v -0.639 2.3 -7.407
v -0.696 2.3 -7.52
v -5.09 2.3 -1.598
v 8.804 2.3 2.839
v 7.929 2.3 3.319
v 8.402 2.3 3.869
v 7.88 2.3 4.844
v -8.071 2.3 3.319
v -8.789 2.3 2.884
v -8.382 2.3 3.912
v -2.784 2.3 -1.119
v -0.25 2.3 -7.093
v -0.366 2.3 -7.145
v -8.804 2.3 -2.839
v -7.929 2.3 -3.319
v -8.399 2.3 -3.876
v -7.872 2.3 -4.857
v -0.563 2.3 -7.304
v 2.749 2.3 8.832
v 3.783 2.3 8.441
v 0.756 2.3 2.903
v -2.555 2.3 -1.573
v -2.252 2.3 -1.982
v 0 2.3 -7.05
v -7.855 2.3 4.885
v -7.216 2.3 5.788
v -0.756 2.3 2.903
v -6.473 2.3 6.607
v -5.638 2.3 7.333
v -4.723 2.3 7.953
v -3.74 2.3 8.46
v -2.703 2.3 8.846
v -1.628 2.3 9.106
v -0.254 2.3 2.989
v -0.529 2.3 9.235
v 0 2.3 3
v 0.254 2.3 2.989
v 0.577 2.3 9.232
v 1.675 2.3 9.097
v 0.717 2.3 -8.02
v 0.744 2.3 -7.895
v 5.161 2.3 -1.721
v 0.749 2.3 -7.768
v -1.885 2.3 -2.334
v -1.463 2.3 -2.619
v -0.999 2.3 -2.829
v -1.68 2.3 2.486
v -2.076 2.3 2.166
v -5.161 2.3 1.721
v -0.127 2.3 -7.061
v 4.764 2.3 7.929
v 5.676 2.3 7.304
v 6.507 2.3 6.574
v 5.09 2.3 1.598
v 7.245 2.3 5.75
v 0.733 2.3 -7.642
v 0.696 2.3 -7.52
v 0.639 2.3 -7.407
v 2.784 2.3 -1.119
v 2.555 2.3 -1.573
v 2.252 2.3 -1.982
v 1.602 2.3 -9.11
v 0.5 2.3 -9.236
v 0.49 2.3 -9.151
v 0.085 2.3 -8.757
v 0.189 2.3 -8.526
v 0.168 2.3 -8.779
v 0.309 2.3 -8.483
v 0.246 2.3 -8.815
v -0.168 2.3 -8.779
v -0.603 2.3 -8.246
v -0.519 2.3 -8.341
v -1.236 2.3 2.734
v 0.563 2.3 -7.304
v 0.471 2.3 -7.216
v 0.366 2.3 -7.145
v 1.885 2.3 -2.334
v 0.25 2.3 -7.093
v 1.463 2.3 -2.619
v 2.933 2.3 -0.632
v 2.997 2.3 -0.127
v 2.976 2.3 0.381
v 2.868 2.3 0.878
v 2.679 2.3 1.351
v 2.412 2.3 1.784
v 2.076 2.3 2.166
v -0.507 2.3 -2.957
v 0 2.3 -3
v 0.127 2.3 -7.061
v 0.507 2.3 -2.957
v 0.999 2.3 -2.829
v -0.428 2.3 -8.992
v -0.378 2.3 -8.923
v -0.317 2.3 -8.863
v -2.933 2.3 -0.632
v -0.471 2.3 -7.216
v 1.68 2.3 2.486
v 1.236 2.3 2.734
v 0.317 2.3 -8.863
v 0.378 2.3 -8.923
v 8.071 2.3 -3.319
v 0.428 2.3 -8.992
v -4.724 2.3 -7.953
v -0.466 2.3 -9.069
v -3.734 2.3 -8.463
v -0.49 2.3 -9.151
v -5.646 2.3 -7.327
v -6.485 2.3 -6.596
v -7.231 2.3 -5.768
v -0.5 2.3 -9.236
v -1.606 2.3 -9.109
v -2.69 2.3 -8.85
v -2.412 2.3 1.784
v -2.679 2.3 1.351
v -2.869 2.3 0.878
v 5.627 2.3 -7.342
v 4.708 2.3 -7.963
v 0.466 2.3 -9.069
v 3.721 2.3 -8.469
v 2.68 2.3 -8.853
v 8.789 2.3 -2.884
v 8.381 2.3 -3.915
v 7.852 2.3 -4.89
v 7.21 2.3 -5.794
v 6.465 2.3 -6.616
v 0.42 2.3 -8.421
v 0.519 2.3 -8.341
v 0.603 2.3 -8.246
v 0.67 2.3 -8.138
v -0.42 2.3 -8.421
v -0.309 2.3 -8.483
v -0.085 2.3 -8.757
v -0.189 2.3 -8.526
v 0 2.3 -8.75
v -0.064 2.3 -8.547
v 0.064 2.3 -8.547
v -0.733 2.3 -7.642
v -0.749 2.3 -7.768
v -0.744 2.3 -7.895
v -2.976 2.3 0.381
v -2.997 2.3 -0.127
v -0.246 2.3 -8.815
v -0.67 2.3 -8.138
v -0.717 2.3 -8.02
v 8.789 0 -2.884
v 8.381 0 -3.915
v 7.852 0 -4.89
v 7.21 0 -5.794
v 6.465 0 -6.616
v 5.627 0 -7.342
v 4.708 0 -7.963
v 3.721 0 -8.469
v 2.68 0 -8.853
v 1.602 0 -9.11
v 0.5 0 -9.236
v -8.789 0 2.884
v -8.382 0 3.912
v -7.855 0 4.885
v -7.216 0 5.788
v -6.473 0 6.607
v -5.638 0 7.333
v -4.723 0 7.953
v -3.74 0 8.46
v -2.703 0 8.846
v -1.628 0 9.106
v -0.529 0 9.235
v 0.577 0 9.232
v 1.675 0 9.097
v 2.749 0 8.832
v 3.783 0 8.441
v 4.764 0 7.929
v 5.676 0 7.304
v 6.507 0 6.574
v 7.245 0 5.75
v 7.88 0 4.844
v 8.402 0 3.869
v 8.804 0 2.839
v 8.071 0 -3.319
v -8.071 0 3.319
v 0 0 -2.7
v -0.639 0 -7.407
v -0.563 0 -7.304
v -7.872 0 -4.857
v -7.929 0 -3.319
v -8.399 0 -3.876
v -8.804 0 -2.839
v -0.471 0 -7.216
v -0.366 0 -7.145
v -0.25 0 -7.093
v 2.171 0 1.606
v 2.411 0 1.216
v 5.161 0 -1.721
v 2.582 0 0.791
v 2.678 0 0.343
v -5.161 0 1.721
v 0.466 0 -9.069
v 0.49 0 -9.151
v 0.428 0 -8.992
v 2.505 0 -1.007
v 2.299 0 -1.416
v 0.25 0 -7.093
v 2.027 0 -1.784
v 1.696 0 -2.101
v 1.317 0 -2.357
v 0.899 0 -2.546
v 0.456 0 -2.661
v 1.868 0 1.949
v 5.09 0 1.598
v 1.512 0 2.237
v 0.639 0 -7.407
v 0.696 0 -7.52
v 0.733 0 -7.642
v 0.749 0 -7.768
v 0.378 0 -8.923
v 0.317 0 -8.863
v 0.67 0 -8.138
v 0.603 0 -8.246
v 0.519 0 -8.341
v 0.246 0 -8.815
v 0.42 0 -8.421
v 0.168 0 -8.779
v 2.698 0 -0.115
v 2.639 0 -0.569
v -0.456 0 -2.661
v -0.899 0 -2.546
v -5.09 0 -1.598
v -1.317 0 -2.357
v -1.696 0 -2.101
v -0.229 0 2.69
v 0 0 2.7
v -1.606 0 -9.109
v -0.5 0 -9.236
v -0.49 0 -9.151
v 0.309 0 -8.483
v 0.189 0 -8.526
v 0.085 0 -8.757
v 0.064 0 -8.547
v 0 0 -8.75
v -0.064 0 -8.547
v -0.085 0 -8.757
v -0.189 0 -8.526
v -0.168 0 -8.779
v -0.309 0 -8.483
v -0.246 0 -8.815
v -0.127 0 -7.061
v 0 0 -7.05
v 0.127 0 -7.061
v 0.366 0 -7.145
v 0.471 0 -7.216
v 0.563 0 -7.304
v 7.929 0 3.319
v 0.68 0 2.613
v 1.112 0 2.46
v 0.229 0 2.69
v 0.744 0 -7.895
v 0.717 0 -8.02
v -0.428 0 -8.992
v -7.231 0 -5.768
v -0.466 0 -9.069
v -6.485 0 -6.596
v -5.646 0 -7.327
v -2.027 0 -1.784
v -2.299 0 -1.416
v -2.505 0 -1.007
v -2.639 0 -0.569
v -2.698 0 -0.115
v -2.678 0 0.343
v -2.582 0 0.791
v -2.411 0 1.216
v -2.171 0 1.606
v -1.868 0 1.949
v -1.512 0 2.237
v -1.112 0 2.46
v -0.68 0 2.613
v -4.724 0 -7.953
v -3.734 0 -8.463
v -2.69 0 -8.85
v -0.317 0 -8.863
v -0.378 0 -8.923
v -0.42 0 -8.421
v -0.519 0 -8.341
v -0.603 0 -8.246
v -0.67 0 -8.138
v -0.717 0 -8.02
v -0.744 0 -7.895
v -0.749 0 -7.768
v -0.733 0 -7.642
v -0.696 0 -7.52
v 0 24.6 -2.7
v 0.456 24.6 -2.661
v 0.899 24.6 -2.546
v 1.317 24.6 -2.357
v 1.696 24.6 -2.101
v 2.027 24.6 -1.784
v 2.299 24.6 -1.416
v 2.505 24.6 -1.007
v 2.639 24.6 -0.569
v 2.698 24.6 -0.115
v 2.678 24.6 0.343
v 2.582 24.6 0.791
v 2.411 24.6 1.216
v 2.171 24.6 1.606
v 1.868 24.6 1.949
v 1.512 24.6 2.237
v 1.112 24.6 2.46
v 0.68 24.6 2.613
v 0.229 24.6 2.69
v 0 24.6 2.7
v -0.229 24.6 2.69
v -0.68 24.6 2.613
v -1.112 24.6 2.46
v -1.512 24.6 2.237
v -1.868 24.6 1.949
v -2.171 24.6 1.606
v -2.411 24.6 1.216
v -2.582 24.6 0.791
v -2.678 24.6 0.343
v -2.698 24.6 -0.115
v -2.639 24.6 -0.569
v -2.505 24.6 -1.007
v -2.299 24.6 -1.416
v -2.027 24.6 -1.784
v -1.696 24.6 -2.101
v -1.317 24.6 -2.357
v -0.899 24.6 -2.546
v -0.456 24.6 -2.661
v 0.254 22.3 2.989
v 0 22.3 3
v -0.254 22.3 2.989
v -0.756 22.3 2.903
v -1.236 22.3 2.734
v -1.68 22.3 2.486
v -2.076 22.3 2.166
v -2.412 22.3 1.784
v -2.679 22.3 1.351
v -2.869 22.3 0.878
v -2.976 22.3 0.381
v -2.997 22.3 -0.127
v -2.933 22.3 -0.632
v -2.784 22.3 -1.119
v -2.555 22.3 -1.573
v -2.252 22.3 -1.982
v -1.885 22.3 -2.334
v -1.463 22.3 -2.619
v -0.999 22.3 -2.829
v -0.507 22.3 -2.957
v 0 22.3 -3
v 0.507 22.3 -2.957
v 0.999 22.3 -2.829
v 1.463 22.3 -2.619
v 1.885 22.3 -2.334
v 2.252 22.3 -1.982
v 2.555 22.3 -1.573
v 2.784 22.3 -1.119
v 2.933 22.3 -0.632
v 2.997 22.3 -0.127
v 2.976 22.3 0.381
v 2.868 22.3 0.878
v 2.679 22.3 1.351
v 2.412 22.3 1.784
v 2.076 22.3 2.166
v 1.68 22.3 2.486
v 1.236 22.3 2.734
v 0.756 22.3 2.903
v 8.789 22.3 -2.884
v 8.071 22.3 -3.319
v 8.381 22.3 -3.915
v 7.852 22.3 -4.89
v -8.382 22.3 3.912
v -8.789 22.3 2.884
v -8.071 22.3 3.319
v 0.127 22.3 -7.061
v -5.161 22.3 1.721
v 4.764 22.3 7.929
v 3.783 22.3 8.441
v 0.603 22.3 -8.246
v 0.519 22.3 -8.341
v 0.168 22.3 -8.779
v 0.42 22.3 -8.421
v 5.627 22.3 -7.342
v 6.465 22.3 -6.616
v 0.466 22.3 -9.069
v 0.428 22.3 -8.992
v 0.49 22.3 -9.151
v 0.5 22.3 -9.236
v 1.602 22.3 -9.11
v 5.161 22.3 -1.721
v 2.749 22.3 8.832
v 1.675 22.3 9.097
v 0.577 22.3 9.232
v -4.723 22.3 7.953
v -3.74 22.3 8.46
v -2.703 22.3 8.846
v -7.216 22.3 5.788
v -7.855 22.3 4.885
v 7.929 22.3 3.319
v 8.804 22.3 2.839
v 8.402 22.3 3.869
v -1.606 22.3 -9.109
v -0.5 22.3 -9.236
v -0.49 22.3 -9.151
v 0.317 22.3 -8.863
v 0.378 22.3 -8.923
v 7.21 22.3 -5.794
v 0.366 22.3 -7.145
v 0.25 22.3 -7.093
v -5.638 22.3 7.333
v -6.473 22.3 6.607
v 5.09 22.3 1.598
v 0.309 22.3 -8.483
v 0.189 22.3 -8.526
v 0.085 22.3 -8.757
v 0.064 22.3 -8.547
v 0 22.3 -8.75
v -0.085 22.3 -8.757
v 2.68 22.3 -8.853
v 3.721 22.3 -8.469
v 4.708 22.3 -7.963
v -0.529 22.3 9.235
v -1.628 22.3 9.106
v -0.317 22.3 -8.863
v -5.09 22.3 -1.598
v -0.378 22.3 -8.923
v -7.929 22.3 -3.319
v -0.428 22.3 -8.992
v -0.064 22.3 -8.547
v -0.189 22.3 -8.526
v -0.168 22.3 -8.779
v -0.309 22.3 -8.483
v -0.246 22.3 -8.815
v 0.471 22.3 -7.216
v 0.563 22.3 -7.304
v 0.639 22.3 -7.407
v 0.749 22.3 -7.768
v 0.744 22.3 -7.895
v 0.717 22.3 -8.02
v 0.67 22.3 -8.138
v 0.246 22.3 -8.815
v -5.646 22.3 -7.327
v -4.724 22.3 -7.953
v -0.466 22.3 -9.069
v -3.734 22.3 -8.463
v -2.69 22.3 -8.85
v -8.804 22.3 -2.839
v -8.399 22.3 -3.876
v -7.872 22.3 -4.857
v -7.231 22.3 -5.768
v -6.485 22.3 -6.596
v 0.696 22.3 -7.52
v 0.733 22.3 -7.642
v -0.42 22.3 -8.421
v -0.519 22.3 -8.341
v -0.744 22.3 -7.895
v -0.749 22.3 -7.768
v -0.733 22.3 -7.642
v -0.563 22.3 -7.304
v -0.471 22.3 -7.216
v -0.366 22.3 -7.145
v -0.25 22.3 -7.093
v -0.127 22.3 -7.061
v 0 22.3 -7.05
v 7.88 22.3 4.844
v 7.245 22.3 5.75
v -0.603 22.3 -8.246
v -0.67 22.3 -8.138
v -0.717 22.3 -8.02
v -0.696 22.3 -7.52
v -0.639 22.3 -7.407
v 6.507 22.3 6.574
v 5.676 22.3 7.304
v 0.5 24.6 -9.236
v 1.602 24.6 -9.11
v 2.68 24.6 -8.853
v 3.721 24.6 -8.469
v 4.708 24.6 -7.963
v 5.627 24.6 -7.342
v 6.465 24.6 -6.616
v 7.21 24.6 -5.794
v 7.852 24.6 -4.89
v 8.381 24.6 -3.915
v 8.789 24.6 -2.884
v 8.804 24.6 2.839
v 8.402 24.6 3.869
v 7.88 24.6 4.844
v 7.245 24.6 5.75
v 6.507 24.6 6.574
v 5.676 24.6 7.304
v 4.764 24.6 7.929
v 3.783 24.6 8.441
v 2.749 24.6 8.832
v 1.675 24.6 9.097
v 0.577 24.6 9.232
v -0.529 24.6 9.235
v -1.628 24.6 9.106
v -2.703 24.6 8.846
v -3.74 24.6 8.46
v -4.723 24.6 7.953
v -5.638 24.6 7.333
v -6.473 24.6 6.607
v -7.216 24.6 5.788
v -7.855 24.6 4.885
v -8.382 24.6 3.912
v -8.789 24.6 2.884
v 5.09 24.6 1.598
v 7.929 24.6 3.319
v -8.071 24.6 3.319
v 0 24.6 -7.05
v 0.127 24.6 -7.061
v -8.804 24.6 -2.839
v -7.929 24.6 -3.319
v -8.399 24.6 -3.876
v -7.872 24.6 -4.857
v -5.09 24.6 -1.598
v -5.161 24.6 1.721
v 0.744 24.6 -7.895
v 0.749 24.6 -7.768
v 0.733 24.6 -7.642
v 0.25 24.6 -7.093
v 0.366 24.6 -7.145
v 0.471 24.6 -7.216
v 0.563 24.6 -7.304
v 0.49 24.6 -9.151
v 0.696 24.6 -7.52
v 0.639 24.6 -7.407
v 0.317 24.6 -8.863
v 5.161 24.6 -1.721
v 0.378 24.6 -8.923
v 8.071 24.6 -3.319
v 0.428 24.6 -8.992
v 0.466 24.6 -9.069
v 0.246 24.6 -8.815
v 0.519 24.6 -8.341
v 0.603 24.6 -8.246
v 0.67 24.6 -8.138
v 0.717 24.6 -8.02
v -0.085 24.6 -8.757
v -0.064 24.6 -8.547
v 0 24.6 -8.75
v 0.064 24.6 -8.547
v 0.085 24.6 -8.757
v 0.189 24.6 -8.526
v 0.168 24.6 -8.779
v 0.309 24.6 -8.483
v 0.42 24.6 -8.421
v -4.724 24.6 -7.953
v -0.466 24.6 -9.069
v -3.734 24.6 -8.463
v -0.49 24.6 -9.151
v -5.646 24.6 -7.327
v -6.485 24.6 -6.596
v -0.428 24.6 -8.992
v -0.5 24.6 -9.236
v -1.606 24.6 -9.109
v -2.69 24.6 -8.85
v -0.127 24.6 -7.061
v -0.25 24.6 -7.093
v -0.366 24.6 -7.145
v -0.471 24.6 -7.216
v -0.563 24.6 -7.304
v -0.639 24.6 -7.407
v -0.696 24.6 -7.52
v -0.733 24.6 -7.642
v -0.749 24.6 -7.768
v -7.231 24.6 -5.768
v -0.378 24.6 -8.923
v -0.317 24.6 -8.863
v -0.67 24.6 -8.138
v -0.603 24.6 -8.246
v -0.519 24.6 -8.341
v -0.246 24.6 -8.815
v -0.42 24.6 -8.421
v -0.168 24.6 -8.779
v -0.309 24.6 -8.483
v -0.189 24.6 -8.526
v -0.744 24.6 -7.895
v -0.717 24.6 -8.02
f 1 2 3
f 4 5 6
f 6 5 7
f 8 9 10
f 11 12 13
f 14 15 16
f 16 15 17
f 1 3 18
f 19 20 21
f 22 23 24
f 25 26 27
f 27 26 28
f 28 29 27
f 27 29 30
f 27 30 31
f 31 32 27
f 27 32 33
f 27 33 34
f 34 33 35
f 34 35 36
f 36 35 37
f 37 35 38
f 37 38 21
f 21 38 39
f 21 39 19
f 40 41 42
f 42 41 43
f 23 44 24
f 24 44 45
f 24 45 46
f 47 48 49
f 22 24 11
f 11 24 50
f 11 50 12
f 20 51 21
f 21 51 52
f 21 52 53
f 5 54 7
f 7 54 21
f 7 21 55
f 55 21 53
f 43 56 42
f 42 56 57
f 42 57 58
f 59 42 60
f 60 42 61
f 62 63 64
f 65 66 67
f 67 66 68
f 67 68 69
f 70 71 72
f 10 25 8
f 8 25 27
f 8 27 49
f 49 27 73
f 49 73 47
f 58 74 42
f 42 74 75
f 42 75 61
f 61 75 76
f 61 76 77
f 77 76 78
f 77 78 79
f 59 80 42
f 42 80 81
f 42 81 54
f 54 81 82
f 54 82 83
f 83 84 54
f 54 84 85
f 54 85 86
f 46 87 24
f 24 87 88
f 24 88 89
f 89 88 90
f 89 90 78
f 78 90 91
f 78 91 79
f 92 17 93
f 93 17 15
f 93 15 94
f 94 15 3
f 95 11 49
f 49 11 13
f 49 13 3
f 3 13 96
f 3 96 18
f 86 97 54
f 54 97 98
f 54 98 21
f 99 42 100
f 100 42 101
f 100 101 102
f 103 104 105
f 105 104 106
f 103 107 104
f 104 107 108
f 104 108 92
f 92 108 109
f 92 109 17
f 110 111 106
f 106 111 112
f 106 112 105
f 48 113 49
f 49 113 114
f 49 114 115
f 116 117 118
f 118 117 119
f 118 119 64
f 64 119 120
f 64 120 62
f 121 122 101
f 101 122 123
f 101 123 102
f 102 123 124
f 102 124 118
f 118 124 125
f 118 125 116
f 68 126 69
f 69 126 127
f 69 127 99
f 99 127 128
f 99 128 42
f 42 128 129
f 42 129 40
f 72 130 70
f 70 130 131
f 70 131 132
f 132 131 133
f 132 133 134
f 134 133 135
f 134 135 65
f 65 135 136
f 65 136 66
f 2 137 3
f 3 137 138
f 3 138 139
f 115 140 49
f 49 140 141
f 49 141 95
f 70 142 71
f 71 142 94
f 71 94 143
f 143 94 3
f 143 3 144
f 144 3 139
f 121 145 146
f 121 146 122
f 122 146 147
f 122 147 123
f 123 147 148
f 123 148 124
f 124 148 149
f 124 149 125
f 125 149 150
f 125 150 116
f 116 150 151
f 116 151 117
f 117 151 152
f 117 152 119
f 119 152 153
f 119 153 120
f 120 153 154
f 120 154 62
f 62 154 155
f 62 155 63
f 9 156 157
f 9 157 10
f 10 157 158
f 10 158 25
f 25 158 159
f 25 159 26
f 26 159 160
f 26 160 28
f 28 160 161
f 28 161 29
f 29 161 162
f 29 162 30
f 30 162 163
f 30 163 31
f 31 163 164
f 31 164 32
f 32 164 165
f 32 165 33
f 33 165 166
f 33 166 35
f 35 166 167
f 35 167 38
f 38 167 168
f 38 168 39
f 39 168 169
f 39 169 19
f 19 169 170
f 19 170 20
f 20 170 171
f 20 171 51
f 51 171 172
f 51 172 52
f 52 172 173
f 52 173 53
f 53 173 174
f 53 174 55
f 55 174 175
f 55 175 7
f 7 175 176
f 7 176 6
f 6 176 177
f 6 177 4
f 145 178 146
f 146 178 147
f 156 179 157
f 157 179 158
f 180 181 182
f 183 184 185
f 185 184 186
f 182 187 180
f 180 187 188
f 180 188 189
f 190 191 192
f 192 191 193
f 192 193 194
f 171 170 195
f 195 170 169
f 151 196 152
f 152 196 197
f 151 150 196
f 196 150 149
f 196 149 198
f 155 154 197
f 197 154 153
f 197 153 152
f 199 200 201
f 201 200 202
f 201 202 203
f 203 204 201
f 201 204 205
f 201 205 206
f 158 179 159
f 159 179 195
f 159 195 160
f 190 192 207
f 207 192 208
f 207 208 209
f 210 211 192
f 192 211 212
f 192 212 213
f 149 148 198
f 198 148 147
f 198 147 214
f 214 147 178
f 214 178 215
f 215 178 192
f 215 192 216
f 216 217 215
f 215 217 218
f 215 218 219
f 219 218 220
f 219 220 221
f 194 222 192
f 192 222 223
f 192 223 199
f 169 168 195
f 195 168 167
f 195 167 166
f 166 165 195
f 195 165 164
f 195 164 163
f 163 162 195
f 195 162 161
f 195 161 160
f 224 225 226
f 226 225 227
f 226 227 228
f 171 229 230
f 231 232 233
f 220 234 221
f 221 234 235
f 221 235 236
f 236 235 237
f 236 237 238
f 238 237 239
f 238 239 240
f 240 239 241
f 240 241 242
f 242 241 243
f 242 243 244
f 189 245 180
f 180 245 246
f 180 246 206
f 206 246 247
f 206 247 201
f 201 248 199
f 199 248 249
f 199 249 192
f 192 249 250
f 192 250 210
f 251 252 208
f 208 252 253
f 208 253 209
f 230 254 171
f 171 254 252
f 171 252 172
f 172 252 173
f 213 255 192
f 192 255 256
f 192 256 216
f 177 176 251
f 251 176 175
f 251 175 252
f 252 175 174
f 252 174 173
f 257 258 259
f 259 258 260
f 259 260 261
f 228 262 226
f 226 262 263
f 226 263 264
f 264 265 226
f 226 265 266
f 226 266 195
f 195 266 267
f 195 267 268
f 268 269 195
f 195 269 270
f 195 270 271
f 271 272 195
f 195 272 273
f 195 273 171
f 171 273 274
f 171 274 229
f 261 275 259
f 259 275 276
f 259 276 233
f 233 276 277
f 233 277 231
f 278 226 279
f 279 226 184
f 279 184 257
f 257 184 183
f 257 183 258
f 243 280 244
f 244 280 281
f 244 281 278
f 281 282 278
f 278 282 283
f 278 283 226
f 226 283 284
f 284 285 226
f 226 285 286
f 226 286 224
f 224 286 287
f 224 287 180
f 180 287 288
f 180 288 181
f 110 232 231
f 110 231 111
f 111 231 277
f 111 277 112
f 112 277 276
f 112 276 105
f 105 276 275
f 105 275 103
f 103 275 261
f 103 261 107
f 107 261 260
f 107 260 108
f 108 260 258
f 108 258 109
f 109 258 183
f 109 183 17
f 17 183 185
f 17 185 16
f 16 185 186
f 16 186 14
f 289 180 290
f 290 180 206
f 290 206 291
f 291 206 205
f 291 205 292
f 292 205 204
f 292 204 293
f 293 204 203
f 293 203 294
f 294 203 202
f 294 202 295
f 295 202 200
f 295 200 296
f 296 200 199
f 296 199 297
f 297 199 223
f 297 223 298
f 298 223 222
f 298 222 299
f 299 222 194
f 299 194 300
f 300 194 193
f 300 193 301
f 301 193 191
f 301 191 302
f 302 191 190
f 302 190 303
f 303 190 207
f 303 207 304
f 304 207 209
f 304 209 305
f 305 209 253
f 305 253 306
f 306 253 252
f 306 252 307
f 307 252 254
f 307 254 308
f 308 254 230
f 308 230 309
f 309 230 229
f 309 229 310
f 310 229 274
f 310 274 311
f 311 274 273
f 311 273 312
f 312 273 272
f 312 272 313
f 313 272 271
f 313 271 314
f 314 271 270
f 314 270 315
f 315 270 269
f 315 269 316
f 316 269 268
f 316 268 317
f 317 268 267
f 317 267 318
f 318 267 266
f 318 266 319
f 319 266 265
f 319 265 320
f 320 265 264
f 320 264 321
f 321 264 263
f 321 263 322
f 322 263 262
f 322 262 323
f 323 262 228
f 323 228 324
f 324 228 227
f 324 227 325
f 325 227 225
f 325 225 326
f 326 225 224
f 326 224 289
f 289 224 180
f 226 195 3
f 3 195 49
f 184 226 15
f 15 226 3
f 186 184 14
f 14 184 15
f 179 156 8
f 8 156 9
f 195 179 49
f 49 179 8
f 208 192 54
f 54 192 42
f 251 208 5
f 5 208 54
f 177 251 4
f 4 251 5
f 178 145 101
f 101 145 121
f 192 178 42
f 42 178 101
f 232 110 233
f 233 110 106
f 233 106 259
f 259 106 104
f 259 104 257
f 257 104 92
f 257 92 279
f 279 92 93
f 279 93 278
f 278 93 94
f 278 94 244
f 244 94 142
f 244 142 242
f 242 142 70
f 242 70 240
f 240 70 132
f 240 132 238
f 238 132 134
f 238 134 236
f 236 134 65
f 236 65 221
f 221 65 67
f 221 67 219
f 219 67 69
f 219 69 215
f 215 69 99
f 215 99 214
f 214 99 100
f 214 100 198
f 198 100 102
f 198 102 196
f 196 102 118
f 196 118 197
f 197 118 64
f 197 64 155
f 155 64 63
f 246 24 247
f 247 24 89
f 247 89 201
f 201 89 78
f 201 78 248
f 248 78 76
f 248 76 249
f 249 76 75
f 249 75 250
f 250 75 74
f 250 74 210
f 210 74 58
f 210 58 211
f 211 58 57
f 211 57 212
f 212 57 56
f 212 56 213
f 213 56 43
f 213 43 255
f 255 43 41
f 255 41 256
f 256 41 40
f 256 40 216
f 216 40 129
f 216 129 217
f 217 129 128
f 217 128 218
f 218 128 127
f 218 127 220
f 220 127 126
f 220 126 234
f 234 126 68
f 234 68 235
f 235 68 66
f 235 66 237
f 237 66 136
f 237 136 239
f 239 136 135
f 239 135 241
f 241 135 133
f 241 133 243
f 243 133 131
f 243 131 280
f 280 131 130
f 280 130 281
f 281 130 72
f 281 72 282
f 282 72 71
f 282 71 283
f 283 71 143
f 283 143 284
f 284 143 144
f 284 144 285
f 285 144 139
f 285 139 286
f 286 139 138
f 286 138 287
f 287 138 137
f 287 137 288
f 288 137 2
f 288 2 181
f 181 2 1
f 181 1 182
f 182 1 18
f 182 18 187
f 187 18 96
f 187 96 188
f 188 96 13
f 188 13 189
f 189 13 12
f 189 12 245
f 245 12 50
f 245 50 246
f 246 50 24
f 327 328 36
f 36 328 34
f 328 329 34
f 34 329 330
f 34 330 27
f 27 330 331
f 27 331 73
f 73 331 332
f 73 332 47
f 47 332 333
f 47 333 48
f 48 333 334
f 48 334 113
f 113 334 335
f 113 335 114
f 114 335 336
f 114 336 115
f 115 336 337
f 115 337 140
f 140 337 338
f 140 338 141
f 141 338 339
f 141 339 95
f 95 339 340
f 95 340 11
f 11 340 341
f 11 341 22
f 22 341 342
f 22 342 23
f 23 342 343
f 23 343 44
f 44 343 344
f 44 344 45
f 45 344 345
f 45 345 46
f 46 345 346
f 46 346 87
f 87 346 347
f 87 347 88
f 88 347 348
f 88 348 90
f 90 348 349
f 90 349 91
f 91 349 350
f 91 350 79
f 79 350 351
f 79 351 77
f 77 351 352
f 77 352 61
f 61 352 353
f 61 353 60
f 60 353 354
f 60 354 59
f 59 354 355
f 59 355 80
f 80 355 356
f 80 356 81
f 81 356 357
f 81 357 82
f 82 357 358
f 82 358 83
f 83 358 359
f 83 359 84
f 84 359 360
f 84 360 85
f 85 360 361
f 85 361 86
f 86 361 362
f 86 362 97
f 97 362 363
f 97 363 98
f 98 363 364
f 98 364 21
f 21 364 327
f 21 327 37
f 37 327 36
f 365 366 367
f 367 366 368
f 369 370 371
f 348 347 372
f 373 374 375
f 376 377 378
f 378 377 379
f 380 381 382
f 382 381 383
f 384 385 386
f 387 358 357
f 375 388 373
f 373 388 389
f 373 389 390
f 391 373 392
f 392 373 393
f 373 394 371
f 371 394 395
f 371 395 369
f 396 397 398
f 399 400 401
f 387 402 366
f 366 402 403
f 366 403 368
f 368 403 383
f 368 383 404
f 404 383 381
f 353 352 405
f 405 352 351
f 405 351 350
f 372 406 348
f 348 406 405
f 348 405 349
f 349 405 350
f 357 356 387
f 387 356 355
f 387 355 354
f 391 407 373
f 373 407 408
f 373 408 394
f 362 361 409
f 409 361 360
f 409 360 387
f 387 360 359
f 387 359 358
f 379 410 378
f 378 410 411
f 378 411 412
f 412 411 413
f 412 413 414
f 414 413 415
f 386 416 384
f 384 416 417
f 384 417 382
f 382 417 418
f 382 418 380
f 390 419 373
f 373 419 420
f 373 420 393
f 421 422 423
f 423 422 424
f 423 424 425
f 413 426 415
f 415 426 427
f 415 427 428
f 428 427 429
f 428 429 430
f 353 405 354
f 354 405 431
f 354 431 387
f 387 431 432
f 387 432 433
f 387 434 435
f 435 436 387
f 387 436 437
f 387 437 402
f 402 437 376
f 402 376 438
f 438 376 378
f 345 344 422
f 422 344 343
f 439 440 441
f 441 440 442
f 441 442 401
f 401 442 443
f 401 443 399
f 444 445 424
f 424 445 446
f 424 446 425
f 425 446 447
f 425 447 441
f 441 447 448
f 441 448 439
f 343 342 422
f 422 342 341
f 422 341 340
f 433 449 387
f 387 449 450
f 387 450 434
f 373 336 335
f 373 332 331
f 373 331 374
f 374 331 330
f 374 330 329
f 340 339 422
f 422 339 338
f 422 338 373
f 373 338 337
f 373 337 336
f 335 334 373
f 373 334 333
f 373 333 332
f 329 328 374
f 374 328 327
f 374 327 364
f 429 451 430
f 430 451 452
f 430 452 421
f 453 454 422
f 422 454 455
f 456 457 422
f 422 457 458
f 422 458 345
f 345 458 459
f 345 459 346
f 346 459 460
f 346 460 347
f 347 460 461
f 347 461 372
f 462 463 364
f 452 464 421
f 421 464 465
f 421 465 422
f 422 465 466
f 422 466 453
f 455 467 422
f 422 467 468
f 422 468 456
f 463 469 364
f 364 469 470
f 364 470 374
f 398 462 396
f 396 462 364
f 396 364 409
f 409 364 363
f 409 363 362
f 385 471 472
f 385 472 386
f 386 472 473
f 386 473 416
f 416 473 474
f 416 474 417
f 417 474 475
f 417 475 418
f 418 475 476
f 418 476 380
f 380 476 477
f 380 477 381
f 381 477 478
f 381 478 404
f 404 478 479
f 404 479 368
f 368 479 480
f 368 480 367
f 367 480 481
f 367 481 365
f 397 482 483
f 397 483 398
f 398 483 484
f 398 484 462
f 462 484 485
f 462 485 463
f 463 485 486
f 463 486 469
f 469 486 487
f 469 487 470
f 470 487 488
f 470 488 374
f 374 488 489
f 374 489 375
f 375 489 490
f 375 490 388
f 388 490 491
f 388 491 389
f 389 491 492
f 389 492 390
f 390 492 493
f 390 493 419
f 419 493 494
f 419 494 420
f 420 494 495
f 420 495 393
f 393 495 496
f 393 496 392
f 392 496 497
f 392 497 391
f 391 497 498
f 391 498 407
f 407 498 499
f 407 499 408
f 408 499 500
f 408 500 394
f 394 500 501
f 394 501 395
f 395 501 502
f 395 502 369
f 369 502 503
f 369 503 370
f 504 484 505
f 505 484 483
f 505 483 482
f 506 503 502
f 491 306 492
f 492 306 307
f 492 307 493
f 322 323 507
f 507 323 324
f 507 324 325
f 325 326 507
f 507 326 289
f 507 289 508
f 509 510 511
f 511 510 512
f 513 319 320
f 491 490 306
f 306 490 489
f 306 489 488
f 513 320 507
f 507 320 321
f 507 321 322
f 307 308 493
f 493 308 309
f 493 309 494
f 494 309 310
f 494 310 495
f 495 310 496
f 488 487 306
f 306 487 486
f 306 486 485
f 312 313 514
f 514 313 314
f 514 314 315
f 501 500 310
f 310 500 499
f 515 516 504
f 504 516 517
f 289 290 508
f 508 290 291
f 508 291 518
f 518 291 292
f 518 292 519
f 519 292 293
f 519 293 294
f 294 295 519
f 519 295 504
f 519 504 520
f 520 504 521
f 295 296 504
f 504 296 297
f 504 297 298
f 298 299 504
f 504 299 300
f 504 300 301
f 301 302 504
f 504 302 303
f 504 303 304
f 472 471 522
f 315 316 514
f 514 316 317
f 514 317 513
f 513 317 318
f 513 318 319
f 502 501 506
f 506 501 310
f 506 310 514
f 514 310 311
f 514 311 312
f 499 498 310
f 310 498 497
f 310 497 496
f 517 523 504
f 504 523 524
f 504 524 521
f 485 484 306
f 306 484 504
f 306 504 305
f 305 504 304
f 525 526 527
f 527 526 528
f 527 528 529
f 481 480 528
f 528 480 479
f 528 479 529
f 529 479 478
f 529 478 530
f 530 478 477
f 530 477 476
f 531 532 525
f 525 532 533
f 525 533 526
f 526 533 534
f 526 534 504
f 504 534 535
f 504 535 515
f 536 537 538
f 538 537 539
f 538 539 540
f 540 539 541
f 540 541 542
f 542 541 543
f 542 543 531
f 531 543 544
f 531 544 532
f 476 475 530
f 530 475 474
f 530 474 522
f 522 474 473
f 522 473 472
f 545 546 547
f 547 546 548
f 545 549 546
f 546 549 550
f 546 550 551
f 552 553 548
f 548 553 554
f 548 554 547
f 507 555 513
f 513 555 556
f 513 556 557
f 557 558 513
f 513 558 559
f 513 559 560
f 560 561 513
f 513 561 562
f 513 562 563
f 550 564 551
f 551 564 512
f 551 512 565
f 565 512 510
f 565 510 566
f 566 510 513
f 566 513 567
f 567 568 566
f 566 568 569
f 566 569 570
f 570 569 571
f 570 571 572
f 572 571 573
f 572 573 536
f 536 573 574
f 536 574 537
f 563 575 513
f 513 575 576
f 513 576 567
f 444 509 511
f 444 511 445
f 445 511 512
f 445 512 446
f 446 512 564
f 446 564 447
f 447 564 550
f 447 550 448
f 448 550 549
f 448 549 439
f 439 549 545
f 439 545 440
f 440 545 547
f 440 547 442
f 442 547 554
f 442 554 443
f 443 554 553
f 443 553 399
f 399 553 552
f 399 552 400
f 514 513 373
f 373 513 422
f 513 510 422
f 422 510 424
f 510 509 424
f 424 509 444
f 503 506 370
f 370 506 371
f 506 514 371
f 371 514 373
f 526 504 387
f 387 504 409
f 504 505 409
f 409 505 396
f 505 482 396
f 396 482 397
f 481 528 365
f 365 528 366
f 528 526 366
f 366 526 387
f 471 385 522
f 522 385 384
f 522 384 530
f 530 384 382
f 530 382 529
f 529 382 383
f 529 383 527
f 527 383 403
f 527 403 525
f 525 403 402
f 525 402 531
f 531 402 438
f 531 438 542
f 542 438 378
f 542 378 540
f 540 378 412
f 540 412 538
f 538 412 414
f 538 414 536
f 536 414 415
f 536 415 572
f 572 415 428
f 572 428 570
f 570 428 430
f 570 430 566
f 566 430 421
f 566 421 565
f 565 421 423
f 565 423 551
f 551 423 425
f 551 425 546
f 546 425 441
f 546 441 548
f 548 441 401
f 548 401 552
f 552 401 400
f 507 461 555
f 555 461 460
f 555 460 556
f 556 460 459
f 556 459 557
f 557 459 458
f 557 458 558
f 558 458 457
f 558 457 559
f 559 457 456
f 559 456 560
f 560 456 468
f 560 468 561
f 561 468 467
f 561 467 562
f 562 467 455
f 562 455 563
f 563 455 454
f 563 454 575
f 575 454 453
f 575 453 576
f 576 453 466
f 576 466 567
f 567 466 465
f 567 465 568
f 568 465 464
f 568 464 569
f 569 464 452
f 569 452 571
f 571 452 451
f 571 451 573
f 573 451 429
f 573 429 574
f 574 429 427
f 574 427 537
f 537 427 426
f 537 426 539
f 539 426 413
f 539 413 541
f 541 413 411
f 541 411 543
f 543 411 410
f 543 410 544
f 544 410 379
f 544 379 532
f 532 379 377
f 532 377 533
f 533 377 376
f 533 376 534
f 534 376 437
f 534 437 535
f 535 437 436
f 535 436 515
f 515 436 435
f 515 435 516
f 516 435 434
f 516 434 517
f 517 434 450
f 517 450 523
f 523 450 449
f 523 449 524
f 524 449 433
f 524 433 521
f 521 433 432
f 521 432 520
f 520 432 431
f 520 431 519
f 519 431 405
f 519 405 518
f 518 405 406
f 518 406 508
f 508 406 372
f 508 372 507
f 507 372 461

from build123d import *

# Parameters (mm, degrees)
SKETCH1_R           = 9.25
SKETCH1_R_2         = 2.7
BOSS_EXTRUDE1_DEPTH = 2.3
CUT_EXTRUDE3_DEPTH  = 2.5
SKETCH4_R           = 0.75
SKETCH4_R_2         = 0.5
CUT_EXTRUDE4_DEPTH  = 5
SKETCH2_R           = 3
SKETCH2_R_2         = 2.7
BOSS_EXTRUDE2_DEPTH = 10


with BuildPart() as part:
    # Sketch1 → Boss-Extrude1 (new body)
    with BuildSketch(Plane(origin=(0, 0, 0), x_dir=(1, 0, 0), z_dir=(0, 1, 0))):
        Circle(SKETCH1_R)
        Circle(SKETCH1_R_2, mode=Mode.SUBTRACT)
    extrude(amount=BOSS_EXTRUDE1_DEPTH)

    # Sketch3 → Cut-Extrude3 (cut)
    with BuildSketch(Plane.XZ):
        Polygon((-5.161329605, 1.721273866), (-8.071331697, 3.318997608), (-10.910002092, 1.597723742), (-10.838670395, -1.721273866), (-7.928668303, -3.318997608), (-5.089997908, -1.597723742), align=None)
        Polygon((5.161329605, -1.721273866), (8.071331697, -3.318997608), (10.910002092, -1.597723742), (10.838670395, 1.721273866), (7.928668303, 3.318997608), (5.089997908, 1.597723742), align=None)
    extrude(amount=-CUT_EXTRUDE3_DEPTH, mode=Mode.SUBTRACT)

    # Sketch4 → Cut-Extrude4 (cut)
    with BuildSketch(Plane(origin=(0, 2.3, 0), x_dir=(1, 0, 0), z_dir=(0, 1, 0))):
        with Locations((0, 7.8)):
            Circle(SKETCH4_R)
        with Locations((0, 9.25)):
            Circle(SKETCH4_R_2)
    extrude(amount=-CUT_EXTRUDE4_DEPTH, mode=Mode.SUBTRACT)

    # Sketch2 → Boss-Extrude2 (add)
    with BuildSketch(Plane(origin=(0, 2.3, 0), x_dir=(1, 0, 0), z_dir=(0, 1, 0))):
        Circle(SKETCH2_R)
        Circle(SKETCH2_R_2, mode=Mode.SUBTRACT)
    extrude(amount=BOSS_EXTRUDE2_DEPTH)

    # Mirror7: part across plane


with BuildPart() as part_1:
    add(part.part)
    add(part.part.mirror(Plane.ZX.offset(12.3)))


solid = part_1.part
